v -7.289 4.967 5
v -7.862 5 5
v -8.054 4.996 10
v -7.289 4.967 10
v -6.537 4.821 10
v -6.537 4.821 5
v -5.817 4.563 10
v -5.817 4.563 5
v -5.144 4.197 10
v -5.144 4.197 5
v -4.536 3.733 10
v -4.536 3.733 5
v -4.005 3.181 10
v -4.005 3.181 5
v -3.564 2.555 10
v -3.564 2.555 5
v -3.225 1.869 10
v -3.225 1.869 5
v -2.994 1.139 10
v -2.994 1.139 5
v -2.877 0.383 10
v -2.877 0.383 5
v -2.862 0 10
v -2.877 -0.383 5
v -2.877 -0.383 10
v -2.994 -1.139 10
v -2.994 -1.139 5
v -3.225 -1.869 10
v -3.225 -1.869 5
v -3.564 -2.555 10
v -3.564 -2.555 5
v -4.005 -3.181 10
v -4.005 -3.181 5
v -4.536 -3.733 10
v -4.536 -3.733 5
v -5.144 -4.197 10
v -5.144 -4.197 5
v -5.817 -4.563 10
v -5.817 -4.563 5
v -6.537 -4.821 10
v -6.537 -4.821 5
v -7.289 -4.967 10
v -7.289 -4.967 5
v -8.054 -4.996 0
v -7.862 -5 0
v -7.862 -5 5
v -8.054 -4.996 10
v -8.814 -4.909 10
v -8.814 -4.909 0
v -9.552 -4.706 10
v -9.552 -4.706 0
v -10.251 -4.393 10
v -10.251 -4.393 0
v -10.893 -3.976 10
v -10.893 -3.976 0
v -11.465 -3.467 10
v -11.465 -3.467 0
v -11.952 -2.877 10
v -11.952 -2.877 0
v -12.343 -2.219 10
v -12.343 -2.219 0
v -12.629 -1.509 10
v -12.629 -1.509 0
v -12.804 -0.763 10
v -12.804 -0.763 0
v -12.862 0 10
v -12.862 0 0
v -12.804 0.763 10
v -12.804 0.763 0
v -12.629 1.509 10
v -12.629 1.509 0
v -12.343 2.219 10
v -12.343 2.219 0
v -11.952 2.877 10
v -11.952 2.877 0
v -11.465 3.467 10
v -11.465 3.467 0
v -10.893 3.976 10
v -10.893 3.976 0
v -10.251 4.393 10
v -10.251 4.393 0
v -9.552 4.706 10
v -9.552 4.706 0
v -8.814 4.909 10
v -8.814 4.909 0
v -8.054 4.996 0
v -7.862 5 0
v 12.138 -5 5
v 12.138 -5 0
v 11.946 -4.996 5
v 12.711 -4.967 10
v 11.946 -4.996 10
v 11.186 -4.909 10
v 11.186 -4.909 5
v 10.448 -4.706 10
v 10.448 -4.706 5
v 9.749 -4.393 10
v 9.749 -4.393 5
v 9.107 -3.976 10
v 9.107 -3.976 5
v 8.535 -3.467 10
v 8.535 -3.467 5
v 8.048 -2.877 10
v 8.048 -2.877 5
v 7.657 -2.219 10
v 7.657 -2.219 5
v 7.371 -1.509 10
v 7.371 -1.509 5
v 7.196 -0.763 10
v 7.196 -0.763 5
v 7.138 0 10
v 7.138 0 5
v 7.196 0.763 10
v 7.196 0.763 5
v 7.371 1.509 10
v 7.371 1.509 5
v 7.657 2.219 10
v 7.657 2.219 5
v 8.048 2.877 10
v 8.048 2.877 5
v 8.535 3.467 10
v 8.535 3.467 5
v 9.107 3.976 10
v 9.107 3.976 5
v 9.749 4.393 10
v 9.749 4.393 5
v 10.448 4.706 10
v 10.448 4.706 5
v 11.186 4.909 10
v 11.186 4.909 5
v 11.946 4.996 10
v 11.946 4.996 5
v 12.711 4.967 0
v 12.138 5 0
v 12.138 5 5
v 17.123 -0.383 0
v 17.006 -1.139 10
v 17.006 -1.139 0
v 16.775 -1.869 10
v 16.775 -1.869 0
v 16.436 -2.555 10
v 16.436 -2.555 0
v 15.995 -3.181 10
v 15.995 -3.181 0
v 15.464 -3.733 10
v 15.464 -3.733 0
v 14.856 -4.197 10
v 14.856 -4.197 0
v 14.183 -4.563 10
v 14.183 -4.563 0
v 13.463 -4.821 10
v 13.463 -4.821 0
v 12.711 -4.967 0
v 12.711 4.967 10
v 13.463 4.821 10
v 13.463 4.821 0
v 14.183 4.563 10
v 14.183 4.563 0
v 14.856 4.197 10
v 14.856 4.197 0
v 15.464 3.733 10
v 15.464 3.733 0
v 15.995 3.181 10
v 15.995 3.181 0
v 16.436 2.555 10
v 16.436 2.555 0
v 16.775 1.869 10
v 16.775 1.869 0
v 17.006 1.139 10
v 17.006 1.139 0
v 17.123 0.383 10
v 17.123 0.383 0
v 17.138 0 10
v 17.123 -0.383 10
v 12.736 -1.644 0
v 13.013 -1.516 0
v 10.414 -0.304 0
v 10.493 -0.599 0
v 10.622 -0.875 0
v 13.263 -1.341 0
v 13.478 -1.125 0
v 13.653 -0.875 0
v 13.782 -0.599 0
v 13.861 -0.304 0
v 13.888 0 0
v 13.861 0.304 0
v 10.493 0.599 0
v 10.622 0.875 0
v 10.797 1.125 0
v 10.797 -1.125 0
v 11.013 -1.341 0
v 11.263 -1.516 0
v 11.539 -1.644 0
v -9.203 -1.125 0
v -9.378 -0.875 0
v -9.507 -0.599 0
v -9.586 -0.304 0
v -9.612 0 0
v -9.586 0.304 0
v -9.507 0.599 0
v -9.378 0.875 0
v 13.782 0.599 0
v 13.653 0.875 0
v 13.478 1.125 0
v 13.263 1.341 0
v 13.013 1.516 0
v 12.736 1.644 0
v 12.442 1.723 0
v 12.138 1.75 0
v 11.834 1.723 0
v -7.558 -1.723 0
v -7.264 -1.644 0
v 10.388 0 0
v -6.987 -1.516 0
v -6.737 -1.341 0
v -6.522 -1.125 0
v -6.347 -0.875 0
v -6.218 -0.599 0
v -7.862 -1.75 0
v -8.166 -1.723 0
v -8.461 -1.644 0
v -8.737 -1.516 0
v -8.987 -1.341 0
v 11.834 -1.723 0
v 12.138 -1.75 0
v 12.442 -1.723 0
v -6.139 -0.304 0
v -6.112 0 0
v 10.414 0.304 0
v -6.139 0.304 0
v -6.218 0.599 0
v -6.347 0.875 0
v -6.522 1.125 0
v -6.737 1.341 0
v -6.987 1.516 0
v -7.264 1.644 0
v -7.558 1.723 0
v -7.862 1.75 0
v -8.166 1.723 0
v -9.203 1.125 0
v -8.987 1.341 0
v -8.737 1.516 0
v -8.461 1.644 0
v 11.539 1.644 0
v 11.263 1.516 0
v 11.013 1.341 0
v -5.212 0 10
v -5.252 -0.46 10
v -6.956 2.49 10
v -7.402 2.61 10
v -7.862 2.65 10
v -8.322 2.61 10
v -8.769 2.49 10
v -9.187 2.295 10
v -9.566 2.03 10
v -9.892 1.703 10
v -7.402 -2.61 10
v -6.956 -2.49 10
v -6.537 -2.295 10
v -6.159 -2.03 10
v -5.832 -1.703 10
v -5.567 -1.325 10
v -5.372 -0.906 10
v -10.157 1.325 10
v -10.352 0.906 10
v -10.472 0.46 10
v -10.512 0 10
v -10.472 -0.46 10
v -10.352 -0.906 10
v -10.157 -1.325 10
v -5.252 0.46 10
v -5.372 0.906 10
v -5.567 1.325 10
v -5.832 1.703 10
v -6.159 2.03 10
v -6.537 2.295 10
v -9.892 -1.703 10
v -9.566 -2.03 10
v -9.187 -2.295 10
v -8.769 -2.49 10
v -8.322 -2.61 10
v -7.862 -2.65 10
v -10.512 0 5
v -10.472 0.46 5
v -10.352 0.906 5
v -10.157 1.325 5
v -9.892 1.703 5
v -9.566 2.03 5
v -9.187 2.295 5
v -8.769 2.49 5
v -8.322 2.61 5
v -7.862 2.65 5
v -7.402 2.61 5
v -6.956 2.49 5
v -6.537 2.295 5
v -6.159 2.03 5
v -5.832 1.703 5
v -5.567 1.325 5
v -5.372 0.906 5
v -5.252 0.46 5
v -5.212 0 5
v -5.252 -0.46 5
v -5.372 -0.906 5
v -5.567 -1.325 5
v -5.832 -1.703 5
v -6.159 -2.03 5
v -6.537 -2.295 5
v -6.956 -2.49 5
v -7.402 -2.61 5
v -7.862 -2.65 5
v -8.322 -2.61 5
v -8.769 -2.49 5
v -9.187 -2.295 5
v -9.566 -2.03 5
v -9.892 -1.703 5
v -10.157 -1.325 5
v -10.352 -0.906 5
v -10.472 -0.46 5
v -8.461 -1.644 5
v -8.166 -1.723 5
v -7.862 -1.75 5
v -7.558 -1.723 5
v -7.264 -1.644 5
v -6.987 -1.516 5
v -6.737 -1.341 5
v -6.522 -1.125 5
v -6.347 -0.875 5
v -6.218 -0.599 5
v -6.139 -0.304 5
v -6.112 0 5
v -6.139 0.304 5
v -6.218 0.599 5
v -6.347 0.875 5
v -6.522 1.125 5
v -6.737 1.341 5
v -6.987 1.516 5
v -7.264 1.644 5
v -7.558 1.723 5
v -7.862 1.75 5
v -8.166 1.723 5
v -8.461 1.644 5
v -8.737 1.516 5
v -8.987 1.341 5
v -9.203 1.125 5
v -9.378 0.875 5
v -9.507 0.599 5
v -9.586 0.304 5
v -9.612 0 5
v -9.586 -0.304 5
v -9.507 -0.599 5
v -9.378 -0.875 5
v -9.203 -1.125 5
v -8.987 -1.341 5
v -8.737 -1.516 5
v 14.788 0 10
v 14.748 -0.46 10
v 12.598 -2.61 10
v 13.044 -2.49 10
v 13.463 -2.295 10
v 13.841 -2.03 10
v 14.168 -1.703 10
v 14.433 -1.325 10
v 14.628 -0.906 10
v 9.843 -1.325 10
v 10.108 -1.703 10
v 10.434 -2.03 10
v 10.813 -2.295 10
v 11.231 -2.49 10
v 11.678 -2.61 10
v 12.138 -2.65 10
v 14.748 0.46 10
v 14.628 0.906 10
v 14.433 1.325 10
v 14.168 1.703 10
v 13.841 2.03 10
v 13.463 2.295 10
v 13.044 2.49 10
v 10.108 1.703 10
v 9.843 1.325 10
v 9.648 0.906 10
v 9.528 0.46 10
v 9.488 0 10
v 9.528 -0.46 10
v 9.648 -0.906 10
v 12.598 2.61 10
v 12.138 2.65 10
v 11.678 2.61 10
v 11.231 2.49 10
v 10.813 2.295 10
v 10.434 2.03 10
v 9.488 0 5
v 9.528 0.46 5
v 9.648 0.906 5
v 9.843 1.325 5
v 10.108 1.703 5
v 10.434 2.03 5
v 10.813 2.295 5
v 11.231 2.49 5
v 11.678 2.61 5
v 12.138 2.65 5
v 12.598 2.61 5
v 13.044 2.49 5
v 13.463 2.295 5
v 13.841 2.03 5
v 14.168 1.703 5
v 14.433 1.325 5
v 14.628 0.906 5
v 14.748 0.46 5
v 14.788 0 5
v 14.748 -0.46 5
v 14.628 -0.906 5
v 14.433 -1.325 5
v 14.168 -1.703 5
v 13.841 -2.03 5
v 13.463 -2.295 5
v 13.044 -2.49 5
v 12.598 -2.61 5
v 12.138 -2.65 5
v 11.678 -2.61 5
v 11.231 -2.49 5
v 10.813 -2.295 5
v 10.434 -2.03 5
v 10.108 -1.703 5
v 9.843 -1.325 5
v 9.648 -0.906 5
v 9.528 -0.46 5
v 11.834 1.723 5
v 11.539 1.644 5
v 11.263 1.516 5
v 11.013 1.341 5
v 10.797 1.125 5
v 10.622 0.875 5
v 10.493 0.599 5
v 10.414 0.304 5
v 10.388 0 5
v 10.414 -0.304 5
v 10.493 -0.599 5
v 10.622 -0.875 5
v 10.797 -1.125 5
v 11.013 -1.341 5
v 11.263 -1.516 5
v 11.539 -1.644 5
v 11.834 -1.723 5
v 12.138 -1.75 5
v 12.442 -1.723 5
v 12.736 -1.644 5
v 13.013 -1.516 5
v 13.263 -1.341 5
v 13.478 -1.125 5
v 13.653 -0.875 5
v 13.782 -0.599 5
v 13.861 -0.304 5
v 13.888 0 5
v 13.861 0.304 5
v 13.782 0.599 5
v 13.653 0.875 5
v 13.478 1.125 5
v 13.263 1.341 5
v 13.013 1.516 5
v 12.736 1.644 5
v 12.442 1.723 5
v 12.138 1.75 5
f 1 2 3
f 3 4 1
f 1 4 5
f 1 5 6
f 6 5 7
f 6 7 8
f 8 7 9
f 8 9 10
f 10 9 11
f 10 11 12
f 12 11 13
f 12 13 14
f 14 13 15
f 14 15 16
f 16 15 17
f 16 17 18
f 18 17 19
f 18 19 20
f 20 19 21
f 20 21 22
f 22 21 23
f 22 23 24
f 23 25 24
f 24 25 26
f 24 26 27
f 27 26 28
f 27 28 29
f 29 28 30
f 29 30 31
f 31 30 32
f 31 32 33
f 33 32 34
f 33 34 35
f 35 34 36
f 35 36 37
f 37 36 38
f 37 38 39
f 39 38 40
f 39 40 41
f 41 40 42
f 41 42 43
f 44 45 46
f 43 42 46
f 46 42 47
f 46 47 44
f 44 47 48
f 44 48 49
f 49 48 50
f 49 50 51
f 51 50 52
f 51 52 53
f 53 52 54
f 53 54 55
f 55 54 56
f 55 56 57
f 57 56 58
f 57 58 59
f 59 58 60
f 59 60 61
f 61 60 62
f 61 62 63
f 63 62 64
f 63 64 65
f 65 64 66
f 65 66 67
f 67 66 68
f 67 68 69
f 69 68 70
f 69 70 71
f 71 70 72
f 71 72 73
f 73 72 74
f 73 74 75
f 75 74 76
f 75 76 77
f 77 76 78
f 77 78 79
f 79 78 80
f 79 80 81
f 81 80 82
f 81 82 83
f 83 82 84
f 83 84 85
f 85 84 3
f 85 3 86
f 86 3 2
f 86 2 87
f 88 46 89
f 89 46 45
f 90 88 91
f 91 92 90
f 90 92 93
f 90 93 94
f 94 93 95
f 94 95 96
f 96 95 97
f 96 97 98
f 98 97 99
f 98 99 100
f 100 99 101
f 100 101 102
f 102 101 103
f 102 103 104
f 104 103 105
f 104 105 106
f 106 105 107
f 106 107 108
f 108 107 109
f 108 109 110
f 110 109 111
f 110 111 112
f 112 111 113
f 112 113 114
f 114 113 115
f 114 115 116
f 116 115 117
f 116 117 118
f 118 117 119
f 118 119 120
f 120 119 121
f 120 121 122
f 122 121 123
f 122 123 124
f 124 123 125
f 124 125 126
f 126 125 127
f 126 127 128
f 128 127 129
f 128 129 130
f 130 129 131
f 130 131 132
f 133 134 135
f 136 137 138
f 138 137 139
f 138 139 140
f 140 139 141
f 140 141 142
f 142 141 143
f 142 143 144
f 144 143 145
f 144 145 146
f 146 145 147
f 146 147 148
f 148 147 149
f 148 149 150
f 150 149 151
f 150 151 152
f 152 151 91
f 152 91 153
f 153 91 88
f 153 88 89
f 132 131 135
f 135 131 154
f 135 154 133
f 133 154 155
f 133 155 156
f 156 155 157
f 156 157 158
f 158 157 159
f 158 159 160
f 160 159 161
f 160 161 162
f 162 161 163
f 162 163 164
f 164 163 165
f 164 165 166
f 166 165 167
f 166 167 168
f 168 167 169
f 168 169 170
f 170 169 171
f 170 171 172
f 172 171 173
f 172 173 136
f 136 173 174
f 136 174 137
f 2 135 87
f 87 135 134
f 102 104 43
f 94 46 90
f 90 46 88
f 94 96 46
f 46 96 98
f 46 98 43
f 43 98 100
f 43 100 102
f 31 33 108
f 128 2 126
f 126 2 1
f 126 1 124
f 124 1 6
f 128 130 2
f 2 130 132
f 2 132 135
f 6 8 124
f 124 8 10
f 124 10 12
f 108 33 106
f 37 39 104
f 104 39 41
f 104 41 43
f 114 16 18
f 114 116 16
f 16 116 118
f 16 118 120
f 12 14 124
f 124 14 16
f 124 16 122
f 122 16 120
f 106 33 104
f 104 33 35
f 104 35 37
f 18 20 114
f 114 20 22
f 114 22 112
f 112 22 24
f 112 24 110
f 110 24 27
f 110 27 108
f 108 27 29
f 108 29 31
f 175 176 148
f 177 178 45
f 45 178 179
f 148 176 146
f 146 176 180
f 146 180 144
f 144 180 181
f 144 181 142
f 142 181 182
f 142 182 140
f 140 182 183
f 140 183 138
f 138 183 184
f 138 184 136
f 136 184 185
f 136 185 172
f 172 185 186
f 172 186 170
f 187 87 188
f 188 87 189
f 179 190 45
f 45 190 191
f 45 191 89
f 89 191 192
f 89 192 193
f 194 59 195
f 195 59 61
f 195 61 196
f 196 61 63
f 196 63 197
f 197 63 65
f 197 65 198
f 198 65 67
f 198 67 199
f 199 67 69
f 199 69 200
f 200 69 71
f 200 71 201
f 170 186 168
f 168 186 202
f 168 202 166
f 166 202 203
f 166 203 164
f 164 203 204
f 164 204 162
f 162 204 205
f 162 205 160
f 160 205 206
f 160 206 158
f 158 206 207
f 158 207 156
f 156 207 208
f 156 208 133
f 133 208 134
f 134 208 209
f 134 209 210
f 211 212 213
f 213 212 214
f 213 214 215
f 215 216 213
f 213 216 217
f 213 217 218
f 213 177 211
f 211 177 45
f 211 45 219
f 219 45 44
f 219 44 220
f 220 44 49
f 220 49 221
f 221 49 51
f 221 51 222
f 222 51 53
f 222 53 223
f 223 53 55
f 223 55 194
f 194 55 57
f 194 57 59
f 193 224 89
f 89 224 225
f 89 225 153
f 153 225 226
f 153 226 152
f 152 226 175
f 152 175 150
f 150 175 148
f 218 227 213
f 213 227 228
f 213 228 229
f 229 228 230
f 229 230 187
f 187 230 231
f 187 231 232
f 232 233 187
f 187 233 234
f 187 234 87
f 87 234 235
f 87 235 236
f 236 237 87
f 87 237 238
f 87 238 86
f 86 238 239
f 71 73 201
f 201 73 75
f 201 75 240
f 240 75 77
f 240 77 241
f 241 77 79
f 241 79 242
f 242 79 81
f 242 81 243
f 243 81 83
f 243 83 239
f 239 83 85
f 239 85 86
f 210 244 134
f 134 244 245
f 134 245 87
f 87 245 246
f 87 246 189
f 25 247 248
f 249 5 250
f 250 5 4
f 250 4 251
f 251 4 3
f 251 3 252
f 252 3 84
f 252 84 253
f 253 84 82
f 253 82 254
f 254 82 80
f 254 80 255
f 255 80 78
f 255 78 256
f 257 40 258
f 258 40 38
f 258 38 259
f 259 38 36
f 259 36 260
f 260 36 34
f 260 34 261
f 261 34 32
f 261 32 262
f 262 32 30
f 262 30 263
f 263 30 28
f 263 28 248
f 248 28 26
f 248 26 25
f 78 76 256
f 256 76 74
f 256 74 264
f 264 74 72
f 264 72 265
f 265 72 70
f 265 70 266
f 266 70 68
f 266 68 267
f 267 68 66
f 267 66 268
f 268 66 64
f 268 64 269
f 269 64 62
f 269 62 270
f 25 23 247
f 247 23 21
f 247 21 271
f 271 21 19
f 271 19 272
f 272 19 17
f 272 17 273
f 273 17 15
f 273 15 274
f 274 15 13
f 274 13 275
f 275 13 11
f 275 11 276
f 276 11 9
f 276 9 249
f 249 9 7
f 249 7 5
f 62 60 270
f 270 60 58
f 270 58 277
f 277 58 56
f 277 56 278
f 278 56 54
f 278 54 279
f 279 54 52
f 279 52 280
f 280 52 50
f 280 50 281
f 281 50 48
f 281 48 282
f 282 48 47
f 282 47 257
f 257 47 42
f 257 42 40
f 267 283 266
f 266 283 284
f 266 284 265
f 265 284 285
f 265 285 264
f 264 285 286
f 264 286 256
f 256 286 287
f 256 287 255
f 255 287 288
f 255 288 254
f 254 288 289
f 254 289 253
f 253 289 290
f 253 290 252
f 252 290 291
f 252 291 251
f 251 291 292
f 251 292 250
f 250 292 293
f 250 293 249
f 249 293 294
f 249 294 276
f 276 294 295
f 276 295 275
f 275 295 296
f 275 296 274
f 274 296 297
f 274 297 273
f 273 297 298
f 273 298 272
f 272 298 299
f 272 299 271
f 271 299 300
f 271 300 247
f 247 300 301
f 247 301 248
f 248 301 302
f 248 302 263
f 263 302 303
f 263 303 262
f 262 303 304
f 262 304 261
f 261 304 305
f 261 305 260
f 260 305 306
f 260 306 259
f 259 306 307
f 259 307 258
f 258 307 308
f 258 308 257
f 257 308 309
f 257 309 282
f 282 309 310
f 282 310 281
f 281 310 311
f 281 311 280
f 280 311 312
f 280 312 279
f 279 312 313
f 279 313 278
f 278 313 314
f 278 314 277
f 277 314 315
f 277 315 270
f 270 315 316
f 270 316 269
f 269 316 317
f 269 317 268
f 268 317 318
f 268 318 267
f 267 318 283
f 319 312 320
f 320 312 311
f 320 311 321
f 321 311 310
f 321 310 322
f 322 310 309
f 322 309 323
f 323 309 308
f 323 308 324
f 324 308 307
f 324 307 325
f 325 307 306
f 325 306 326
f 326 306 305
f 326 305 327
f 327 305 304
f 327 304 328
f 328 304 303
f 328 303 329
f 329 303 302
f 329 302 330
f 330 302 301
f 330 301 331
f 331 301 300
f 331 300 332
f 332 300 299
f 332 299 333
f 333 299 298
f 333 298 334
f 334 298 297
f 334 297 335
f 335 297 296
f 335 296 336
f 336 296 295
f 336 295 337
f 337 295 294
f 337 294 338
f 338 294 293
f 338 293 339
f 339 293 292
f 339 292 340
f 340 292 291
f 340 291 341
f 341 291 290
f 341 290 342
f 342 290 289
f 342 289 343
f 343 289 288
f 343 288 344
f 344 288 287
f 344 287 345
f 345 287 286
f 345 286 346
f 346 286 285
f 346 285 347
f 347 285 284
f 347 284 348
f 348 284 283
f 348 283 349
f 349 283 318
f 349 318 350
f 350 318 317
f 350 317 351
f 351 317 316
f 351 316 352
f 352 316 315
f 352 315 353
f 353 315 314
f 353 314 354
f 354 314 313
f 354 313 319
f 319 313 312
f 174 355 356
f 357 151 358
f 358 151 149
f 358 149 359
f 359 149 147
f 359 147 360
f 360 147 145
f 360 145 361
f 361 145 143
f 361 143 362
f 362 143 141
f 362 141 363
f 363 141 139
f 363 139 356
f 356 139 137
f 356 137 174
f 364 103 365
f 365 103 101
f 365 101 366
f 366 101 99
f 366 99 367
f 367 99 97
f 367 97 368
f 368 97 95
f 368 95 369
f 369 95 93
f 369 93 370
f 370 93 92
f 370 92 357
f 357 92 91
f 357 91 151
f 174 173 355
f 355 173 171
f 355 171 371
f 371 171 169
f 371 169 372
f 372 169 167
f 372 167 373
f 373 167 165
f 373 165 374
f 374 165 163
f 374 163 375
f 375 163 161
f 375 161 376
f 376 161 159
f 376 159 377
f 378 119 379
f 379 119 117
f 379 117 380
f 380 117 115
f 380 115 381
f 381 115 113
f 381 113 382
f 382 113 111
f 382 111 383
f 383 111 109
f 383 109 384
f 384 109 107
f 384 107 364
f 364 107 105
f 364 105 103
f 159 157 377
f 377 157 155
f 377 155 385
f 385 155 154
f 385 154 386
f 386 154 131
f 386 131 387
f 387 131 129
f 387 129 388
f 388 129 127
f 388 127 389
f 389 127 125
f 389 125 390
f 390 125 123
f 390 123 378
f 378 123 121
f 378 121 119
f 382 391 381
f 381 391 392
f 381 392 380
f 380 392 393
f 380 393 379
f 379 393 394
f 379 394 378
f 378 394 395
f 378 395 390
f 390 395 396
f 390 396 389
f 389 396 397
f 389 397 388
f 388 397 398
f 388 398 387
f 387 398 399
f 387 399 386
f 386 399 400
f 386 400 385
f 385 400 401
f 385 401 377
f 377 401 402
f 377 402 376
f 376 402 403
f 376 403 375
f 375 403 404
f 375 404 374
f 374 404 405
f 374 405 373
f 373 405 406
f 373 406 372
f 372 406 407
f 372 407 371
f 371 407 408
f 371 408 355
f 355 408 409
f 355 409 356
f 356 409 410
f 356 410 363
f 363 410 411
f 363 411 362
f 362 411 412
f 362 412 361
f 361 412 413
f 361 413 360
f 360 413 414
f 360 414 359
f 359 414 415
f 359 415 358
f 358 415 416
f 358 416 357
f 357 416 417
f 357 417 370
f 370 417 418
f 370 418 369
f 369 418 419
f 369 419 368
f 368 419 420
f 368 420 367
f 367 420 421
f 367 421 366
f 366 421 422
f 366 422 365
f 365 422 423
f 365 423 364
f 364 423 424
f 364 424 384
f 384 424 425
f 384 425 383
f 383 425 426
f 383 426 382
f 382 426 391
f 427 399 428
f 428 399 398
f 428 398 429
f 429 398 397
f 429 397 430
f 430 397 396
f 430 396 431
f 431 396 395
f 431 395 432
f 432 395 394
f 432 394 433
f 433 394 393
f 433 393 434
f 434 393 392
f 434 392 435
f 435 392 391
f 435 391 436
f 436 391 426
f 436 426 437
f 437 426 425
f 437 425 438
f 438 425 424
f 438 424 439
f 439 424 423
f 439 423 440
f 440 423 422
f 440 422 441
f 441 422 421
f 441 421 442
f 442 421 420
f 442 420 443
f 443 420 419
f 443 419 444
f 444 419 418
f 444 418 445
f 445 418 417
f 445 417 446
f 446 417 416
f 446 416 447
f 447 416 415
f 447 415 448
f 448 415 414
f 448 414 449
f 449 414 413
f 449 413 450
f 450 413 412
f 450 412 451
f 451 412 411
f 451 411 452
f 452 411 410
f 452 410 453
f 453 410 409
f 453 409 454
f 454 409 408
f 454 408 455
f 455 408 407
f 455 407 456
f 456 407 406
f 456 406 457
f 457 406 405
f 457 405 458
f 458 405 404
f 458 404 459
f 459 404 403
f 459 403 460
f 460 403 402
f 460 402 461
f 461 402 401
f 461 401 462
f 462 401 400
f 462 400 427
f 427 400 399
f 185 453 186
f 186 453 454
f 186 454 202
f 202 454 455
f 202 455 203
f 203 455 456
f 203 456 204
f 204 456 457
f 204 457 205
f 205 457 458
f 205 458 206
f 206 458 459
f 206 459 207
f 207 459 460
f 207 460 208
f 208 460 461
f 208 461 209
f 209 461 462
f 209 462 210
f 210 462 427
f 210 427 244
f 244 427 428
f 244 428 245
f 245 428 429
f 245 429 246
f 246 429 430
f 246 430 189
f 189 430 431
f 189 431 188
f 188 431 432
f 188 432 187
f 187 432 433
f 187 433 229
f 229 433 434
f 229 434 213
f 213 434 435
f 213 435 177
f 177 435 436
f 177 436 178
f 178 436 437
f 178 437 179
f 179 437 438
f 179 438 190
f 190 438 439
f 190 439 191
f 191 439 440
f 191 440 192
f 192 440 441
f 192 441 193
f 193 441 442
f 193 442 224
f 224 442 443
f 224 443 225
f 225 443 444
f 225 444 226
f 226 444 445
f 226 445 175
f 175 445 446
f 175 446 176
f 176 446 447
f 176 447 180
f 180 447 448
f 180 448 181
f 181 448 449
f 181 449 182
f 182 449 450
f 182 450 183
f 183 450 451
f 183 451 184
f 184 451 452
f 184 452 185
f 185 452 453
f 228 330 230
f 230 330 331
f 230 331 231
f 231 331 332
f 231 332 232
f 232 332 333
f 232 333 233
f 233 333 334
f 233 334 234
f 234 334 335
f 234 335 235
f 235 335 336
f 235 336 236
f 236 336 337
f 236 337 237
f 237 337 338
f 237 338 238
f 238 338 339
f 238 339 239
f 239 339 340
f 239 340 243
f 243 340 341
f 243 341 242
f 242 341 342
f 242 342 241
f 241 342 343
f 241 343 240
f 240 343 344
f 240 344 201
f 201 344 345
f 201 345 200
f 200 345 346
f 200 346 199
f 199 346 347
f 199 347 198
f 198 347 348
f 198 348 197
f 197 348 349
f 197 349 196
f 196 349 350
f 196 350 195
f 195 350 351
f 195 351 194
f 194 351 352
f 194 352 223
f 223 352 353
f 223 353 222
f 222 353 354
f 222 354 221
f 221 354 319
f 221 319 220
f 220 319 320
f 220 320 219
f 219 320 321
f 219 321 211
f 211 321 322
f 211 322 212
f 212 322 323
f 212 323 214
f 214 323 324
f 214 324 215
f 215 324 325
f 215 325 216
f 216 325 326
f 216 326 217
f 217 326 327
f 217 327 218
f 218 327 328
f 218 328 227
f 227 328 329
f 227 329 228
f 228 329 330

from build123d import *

# Parameters (mm, degrees)
ESTRUSIONE_ESTRUSIONE1_DEPTH = 5
SCHIZZO2_R                   = 5
SCHIZZO2_R_2                 = 2.65
ESTRUSIONE_ESTRUSIONE2_DEPTH = 5
SCHIZZO3_R                   = 1.75
TAGLIO_ESTRUSIONE1_DEPTH     = 19.539256374


with BuildPart() as part:
    # Schizzo1 → Estrusione-Estrusione1 (new body)
    with BuildSketch(Plane.XY):
        with BuildLine():
            Line((-7.862204724, 5), (12.137795276, 5))
            ThreePointArc((12.137795276, 5), (17.137795276, 0), (12.137795276, -5))
            Line((12.137795276, -5), (-7.862204724, -5))
            ThreePointArc((-7.862204724, -5), (-12.862204724, 0), (-7.862204724, 5))
        make_face()
    extrude(amount=ESTRUSIONE_ESTRUSIONE1_DEPTH)

    # Schizzo2 → Estrusione-Estrusione2 (add)
    # profile 1 of 2: a face of its own
    with BuildSketch(Plane.XY.offset(5)):
        with Locations((-7.862204724, 0)):
            Circle(SCHIZZO2_R)
        with Locations((-7.862204724, 0)):
            Circle(SCHIZZO2_R_2, mode=Mode.SUBTRACT)
    # profile 2 of 2: a face of its own
    with BuildSketch(Plane.XY.offset(5)):
        with Locations((12.137795276, 0)):
            Circle(SCHIZZO2_R)
        with Locations((12.137795276, 0)):
            Circle(SCHIZZO2_R_2, mode=Mode.SUBTRACT)
    extrude(amount=ESTRUSIONE_ESTRUSIONE2_DEPTH)

    # Schizzo3 → Taglio-Estrusione1 (cut, through all)
    with BuildSketch(Plane.XY.offset(5)):
        with Locations((-7.862204724, 0)):
            Circle(SCHIZZO3_R)
        with Locations((12.137795276, 0)):
            Circle(SCHIZZO3_R)
    extrude(amount=-TAGLIO_ESTRUSIONE1_DEPTH, mode=Mode.SUBTRACT)


solid = part.part
